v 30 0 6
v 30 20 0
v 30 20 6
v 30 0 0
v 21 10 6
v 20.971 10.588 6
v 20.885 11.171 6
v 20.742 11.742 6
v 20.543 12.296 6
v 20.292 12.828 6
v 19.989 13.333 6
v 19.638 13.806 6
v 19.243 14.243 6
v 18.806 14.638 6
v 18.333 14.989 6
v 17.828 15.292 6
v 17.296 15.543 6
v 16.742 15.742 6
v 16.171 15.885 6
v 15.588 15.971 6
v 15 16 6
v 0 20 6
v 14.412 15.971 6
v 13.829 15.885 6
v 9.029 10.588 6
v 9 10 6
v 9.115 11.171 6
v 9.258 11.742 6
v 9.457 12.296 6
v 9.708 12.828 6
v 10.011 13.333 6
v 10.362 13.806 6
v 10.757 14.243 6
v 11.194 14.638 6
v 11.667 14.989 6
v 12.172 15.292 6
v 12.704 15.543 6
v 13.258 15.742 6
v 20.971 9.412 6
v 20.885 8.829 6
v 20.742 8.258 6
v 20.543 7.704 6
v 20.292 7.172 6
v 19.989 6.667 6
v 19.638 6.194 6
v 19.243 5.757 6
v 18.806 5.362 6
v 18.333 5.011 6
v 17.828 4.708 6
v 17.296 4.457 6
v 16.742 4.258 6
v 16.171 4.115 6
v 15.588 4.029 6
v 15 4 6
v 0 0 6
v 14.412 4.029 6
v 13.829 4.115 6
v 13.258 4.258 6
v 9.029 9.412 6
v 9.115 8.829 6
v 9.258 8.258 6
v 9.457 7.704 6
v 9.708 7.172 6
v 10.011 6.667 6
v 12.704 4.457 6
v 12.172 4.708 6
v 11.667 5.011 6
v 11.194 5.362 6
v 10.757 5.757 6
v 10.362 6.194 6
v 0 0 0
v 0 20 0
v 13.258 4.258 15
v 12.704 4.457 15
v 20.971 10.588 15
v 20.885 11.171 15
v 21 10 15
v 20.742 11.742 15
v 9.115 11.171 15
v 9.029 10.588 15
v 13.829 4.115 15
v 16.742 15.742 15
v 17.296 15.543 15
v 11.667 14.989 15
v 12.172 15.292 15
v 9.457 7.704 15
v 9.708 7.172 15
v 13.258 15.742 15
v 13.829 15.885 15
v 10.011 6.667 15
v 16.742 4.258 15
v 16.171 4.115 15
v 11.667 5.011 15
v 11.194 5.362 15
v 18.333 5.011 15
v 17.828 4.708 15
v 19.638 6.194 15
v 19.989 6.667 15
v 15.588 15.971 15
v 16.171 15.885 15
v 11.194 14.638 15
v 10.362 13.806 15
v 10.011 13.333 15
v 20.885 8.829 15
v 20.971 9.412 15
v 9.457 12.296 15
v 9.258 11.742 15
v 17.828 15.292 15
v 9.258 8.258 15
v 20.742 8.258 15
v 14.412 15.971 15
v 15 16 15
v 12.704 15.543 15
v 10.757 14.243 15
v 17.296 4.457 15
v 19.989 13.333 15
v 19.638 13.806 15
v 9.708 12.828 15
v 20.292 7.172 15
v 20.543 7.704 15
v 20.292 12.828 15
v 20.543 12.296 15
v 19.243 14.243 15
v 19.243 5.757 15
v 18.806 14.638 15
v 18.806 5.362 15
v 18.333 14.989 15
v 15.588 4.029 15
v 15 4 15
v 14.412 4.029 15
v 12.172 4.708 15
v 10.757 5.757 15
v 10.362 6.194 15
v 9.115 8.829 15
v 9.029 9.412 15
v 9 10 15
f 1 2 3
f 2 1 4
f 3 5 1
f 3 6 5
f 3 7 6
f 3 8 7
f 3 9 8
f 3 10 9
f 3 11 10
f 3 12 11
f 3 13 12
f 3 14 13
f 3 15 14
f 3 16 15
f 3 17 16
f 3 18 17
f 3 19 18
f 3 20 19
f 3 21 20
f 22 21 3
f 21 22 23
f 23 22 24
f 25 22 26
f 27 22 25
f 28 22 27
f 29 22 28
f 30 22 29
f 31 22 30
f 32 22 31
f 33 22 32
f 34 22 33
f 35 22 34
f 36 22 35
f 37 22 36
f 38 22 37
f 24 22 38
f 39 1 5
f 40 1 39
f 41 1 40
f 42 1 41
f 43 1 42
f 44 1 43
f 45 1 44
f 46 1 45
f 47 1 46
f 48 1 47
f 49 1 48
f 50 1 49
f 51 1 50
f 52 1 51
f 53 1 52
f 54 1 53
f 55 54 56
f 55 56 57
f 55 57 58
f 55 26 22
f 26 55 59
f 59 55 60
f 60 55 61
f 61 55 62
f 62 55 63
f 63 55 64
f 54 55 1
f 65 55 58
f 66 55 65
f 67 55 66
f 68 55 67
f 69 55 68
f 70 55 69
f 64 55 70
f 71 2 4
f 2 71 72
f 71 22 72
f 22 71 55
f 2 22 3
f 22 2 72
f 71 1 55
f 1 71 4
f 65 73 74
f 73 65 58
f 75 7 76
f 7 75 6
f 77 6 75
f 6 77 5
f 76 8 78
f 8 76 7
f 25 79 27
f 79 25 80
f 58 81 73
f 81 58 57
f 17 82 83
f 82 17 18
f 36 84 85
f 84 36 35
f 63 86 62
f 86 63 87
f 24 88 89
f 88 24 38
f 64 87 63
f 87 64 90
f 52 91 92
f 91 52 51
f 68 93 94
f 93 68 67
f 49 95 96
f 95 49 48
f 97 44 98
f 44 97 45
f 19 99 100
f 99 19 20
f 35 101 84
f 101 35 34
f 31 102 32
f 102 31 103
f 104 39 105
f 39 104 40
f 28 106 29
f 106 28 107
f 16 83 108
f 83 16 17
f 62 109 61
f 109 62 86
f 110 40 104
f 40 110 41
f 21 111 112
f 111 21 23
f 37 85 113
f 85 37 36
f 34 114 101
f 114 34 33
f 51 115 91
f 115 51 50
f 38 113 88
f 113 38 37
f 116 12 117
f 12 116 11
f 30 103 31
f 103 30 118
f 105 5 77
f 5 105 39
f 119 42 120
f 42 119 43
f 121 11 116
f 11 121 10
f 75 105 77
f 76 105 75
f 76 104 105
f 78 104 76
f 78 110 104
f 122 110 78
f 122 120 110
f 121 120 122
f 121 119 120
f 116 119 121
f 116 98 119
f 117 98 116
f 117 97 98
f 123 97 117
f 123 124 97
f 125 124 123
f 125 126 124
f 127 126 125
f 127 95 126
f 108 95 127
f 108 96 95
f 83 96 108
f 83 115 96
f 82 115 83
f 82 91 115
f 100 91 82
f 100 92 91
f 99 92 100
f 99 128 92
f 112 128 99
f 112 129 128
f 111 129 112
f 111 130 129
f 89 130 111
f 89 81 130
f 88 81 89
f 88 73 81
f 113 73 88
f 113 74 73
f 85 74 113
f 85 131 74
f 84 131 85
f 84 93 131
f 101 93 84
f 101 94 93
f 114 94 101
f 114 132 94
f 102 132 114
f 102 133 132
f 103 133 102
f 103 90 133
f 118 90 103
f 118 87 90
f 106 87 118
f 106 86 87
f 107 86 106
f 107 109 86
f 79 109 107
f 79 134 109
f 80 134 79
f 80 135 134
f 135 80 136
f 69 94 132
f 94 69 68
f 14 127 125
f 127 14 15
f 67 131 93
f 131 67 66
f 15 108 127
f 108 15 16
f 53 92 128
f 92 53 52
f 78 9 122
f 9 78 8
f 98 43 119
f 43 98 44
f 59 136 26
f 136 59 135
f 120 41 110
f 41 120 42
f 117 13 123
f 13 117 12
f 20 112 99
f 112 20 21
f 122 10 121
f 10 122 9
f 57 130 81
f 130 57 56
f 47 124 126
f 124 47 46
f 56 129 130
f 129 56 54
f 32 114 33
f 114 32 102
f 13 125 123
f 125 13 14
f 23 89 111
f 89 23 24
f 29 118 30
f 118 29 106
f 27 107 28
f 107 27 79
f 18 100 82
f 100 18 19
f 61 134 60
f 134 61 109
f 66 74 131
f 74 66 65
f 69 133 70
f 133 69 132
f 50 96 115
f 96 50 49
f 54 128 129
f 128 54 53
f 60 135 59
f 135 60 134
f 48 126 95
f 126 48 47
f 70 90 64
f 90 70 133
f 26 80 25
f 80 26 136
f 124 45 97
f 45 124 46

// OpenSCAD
union() {
  cube([30, 20, 6]);
  translate([15, 10, 5])
    cylinder(h=10, d=12, $fn=64);
}
